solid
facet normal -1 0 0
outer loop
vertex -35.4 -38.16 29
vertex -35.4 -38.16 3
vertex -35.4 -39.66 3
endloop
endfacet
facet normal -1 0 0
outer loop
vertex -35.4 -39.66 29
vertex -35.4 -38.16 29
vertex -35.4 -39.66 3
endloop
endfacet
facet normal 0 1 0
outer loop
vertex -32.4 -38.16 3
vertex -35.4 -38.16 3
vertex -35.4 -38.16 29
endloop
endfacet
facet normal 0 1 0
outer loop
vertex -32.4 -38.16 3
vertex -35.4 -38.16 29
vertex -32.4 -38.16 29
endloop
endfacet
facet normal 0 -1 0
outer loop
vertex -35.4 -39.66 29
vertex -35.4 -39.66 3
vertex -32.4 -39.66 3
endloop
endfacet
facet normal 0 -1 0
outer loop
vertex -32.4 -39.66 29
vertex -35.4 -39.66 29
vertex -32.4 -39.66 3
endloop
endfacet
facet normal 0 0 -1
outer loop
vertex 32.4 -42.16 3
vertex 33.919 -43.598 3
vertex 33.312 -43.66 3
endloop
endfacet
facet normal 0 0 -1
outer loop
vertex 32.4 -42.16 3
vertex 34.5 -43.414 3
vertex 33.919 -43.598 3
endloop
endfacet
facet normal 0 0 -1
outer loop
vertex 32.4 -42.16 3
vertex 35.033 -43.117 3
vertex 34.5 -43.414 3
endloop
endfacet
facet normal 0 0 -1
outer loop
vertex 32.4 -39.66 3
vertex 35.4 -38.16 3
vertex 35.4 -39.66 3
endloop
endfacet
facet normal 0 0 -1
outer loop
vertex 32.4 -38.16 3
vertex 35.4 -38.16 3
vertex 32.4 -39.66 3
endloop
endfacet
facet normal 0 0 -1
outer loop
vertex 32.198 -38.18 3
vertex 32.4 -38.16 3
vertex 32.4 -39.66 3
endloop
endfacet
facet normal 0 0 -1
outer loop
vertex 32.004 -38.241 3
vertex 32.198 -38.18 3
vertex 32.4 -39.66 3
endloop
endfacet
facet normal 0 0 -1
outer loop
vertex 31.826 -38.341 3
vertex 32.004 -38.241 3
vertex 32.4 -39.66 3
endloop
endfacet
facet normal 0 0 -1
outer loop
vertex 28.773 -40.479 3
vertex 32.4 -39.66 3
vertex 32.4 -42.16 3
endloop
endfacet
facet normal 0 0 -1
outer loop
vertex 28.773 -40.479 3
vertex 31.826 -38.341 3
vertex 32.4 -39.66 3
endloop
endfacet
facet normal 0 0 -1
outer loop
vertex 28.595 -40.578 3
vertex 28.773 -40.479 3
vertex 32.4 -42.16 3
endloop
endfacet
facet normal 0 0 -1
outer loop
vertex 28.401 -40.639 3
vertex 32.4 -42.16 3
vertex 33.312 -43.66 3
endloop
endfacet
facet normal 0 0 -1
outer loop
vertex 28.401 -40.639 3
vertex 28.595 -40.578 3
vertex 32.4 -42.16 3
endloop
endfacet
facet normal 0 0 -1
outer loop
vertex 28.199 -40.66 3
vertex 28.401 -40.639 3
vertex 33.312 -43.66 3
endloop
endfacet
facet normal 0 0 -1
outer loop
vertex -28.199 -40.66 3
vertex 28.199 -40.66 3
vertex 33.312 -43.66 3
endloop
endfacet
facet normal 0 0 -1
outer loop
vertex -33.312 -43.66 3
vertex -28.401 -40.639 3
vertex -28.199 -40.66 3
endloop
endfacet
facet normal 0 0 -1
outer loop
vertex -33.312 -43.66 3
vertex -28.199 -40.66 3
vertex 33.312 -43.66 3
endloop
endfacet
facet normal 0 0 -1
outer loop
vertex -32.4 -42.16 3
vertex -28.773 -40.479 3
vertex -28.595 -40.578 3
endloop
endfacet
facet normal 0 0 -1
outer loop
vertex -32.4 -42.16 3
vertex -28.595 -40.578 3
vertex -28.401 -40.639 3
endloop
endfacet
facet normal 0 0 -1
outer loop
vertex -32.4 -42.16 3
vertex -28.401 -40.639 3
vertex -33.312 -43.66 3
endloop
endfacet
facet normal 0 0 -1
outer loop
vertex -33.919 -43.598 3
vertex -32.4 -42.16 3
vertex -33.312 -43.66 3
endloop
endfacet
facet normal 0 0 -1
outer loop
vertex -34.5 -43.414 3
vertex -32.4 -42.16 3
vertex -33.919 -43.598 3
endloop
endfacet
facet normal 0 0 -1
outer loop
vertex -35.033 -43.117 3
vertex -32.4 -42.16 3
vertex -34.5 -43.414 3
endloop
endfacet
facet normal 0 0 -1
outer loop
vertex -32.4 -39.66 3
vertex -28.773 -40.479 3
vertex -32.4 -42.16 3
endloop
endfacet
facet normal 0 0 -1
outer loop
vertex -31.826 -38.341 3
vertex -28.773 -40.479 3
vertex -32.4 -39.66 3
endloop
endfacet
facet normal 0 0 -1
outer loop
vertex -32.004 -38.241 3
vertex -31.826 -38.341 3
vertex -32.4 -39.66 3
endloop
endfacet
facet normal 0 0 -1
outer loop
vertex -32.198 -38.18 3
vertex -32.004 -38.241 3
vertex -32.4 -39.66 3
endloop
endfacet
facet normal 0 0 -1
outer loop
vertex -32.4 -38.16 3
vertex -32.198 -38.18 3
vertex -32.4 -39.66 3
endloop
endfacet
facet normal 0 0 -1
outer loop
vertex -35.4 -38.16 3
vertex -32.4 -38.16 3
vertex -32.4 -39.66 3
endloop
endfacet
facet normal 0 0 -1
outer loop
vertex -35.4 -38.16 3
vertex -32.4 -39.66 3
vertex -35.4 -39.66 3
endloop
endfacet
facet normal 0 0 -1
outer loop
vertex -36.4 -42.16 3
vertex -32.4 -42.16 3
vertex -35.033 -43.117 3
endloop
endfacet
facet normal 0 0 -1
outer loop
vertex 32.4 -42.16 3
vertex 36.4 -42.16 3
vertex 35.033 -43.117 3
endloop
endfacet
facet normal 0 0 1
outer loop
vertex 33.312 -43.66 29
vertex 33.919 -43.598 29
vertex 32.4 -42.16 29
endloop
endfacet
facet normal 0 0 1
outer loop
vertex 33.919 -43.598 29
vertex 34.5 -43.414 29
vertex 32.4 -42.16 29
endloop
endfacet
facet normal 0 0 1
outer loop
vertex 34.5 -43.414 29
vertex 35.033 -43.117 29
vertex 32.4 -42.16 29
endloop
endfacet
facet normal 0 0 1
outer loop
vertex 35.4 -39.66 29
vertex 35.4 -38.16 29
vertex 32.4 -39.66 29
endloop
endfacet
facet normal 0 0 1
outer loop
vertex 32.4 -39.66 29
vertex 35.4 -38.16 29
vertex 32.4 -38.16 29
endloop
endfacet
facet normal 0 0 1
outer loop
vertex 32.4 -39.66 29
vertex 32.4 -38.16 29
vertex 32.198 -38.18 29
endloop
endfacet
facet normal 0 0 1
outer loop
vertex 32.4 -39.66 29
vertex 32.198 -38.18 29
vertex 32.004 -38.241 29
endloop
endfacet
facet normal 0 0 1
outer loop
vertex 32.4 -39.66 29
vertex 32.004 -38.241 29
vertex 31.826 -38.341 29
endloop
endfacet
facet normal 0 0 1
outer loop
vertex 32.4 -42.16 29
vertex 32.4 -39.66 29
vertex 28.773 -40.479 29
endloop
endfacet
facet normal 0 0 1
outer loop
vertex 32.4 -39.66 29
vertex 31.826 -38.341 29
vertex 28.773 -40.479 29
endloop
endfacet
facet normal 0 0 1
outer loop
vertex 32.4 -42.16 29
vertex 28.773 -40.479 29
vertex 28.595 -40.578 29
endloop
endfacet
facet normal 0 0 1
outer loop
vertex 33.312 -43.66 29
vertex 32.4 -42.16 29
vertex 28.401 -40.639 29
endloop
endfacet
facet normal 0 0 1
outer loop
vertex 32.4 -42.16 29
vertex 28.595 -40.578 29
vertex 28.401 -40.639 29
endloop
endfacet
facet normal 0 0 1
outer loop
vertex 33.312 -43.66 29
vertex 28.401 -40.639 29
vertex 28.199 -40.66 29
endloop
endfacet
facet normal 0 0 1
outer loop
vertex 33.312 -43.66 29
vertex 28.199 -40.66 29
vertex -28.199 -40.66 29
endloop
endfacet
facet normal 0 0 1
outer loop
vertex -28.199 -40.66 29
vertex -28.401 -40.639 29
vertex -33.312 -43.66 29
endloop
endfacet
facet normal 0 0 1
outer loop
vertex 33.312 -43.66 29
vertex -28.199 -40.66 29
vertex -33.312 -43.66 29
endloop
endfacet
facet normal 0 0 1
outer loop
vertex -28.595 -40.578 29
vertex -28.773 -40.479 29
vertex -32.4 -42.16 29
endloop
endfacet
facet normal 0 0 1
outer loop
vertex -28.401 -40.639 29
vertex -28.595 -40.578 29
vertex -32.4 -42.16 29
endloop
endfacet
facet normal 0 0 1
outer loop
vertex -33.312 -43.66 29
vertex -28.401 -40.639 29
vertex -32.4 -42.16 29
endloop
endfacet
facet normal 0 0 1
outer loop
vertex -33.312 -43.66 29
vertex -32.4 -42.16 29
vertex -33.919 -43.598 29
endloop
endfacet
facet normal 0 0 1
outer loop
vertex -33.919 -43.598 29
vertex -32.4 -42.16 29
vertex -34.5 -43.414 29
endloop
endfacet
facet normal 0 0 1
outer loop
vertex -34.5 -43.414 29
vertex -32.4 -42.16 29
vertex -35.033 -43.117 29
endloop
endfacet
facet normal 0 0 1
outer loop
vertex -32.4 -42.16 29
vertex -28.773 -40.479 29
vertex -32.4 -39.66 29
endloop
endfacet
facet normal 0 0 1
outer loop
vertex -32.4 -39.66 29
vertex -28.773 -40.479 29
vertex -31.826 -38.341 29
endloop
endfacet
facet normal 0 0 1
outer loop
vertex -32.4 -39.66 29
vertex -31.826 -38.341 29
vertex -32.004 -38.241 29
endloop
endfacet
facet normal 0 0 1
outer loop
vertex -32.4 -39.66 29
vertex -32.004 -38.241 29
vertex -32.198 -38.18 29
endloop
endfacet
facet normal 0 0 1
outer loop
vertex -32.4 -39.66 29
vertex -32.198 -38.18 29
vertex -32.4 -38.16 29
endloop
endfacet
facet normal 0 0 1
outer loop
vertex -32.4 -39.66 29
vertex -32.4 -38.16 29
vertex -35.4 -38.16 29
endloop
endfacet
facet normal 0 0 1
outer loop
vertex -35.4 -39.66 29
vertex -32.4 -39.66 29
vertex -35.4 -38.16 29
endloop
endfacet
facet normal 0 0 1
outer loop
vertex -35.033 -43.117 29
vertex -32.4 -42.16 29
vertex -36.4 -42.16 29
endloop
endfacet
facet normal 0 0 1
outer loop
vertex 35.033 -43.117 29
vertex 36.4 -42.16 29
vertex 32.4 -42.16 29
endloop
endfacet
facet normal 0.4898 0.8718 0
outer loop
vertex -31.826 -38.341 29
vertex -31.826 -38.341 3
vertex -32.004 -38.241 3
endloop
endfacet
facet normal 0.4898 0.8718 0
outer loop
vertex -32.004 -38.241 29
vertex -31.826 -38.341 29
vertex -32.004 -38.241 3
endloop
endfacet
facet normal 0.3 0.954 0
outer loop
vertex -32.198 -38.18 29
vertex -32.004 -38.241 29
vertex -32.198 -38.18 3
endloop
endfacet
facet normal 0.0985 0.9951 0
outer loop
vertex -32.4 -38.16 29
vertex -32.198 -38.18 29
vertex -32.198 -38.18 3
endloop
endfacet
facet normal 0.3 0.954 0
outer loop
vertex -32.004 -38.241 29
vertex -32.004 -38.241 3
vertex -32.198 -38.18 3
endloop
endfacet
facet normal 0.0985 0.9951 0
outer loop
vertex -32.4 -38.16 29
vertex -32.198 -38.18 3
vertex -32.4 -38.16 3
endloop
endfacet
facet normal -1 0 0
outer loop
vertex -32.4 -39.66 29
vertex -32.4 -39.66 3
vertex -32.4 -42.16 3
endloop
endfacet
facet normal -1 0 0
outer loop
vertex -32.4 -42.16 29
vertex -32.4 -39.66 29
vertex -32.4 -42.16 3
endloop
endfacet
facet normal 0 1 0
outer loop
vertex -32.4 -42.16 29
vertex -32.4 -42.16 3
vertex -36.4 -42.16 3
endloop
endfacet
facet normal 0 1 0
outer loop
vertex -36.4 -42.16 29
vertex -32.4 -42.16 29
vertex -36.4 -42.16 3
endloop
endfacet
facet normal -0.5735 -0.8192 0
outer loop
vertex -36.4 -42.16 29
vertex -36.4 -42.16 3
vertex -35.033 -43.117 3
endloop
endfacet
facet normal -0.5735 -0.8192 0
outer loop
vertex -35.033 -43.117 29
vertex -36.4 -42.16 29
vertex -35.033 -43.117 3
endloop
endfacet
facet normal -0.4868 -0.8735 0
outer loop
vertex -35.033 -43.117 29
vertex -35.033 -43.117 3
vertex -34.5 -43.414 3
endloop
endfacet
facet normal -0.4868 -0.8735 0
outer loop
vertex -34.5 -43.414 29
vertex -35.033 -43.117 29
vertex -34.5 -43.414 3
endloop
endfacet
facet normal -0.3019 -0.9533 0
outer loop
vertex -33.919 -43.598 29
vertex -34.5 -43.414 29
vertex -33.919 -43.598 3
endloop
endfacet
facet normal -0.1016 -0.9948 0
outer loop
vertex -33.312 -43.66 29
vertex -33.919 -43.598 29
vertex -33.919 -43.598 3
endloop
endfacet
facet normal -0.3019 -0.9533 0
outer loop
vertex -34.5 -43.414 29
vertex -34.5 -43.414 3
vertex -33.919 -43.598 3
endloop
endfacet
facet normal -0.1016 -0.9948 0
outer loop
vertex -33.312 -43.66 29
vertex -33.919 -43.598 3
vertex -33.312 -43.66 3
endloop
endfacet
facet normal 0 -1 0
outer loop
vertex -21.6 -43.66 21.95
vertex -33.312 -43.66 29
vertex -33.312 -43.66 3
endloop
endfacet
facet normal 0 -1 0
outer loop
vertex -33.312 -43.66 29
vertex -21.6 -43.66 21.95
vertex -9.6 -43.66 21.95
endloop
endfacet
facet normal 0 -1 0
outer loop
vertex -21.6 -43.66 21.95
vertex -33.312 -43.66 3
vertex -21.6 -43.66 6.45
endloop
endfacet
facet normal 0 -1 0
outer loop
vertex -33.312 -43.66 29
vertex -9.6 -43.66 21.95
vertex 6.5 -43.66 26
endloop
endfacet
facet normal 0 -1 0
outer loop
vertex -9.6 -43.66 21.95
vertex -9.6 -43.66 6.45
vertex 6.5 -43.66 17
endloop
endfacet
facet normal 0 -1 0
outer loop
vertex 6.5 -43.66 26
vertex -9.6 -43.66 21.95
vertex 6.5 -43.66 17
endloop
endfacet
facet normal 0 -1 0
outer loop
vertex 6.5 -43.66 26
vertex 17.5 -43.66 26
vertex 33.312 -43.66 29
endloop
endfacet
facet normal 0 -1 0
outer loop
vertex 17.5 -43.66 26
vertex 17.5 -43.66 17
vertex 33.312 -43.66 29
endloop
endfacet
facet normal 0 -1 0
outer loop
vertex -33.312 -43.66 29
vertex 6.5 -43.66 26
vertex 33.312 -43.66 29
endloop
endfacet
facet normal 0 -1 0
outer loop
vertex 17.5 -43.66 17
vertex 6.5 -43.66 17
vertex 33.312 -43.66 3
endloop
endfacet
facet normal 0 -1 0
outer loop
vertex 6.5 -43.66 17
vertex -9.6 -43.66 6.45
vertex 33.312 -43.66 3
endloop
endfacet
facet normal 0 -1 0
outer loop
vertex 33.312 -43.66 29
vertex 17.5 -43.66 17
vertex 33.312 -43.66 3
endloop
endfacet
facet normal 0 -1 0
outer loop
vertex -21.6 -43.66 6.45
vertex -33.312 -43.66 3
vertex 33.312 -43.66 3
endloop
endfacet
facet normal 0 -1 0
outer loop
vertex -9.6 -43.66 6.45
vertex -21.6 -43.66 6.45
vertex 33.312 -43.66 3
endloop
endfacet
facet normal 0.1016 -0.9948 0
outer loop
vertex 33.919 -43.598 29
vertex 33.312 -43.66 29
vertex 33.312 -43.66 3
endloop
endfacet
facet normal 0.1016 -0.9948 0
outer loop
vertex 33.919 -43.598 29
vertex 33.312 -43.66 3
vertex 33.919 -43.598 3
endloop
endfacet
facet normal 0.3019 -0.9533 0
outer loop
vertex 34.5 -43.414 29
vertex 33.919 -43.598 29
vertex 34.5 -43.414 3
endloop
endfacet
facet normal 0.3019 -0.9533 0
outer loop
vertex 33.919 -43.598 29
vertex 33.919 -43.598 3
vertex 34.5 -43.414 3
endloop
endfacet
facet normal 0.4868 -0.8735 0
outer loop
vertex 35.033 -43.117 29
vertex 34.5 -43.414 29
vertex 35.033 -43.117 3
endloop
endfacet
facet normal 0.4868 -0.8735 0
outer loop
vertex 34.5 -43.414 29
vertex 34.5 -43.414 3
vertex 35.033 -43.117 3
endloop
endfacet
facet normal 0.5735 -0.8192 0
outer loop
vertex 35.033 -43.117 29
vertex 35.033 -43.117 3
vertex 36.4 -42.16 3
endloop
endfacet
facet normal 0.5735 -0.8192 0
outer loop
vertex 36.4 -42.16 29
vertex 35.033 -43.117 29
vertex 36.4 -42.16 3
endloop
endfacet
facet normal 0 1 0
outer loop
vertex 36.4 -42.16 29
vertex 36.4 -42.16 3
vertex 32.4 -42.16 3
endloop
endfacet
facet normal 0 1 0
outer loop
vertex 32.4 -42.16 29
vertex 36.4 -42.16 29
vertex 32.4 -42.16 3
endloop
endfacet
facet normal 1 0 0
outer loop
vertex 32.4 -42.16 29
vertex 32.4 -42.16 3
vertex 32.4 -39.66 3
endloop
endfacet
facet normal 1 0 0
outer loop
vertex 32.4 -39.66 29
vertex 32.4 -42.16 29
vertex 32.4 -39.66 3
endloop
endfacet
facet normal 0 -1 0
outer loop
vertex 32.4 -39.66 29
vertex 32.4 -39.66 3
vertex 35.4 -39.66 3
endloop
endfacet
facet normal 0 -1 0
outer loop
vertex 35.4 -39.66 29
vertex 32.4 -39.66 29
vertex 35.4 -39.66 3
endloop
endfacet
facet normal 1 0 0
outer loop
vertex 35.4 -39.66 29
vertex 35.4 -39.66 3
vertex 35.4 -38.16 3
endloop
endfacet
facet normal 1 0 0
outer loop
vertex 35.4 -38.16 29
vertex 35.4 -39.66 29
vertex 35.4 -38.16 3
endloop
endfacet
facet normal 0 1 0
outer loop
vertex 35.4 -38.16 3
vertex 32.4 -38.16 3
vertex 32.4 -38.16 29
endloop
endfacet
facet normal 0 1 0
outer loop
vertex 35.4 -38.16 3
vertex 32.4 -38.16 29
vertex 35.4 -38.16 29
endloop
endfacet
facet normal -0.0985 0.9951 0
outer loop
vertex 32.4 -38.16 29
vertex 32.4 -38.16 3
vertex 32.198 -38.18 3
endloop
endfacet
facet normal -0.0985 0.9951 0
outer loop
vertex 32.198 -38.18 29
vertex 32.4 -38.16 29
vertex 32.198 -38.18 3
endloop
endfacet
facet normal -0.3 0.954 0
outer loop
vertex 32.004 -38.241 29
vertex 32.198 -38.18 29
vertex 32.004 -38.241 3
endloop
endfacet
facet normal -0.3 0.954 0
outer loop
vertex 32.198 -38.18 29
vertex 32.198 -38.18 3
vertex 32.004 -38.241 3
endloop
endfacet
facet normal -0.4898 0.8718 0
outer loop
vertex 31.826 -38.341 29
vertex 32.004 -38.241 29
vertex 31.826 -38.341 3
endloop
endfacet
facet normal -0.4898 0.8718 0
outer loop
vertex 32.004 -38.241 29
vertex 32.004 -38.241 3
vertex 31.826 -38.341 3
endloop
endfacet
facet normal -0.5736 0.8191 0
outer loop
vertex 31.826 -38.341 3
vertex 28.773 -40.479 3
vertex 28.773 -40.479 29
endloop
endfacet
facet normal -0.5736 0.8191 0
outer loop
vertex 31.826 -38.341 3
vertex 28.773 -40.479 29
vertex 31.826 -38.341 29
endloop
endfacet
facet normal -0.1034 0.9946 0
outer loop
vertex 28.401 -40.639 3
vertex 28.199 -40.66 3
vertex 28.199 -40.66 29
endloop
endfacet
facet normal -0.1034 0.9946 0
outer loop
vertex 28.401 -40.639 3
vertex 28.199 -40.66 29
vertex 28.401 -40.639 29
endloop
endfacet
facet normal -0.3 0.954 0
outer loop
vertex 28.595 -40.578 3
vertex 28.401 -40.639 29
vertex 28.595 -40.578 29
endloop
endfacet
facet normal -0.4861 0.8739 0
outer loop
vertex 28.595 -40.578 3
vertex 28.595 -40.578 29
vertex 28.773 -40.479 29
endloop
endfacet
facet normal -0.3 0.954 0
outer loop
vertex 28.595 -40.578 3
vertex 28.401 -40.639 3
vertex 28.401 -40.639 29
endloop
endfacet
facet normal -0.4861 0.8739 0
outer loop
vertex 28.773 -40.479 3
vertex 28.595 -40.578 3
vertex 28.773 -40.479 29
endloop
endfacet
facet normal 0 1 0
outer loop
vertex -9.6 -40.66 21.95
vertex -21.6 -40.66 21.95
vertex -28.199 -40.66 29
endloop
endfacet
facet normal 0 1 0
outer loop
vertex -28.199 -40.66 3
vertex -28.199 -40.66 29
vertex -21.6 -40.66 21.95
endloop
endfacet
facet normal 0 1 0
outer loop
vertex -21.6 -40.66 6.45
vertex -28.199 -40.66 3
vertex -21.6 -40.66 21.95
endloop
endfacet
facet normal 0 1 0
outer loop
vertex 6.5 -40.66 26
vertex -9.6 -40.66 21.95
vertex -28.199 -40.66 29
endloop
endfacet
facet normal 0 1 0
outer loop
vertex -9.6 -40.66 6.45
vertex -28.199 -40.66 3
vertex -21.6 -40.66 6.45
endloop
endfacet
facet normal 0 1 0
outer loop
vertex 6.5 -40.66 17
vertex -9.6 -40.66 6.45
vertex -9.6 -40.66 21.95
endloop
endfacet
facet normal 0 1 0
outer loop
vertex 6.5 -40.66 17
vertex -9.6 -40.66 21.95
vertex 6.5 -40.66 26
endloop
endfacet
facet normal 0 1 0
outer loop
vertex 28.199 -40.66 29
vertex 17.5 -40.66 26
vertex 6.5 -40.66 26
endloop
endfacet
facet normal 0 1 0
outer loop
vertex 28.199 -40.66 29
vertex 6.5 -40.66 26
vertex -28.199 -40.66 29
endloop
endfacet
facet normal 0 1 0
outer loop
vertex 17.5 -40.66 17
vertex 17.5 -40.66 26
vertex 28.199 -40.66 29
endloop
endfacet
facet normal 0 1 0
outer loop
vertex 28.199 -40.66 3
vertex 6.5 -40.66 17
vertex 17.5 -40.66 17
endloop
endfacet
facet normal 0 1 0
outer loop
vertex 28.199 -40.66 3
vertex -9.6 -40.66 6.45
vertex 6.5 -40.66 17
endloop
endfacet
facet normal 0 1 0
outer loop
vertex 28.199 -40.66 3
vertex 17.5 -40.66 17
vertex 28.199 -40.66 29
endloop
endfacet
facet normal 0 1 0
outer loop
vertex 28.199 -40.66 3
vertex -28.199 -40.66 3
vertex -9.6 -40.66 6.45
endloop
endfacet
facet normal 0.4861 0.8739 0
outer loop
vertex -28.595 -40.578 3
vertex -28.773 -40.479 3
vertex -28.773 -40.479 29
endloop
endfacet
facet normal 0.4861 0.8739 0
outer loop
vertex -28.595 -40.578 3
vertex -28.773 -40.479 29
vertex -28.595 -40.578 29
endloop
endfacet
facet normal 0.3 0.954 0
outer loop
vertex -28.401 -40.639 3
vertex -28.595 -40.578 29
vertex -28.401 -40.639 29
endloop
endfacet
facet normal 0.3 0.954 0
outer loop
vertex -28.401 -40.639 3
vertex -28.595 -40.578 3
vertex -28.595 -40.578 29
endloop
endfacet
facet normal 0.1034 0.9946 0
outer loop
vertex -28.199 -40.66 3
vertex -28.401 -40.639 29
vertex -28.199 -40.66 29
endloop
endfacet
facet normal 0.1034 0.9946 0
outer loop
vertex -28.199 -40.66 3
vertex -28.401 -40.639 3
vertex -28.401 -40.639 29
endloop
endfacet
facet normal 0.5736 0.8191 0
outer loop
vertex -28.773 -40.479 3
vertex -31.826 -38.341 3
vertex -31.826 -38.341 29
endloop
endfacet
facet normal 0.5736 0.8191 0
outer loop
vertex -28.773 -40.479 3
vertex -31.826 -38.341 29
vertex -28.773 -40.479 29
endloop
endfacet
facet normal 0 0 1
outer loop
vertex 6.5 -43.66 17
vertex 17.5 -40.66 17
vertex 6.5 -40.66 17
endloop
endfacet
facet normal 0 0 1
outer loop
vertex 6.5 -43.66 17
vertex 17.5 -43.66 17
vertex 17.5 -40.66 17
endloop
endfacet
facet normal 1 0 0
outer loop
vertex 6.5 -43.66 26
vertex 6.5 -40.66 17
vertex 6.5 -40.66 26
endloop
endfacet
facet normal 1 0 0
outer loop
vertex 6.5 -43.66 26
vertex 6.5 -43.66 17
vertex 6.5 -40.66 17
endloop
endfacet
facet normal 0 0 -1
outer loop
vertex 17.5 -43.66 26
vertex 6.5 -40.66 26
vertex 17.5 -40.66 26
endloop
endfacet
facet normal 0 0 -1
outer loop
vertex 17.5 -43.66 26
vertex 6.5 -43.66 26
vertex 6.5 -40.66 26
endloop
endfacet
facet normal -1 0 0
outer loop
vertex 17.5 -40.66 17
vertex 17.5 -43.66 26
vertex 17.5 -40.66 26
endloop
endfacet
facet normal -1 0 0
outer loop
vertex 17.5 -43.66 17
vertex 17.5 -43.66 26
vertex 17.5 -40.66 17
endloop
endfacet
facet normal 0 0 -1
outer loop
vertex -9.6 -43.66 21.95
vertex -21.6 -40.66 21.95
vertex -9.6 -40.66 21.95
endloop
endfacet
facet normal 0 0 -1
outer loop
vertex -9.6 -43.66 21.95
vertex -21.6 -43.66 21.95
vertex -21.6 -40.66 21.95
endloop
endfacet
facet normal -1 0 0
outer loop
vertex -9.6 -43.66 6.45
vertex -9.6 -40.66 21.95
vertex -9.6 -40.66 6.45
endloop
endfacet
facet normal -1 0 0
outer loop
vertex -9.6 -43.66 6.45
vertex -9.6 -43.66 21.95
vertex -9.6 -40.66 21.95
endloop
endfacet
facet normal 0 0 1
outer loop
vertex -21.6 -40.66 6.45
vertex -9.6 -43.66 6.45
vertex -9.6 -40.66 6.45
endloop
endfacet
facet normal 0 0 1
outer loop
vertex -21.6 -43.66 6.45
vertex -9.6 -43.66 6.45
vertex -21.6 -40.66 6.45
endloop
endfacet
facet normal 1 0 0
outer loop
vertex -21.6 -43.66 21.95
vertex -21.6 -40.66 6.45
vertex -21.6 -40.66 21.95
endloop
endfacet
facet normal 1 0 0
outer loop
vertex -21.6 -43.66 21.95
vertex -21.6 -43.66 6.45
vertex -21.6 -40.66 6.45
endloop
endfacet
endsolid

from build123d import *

# Parameters (mm, degrees)
PAD_DEPTH     = 26
SKETCH007_W   = 12
SKETCH007_H   = 15.5
SKETCH007_W_2 = 11
SKETCH007_H_2 = 9
POCKET_DEPTH  = 5


with BuildPart() as part:
    # Sketch008 → Pad (new body)
    with BuildSketch(Plane.XY.offset(3)):
        with BuildLine():
            Line((-35.4, -39.6597), (-32.4, -39.6597))
            Line((-32.4, -39.6597), (-32.4, -42.1597))
            Line((-32.4, -42.1597), (-36.4, -42.1597))
            Line((-36.4, -42.1597), (-35.032611, -43.117156))
            ThreePointArc((-35.032611, -43.117156), (-34.213999, -43.520851), (-33.311882, -43.6597))
            Line((-33.311882, -43.6597), (33.311882, -43.6597))
            ThreePointArc((33.311882, -43.6597), (34.213999, -43.520851), (35.032611, -43.117156))
            Line((35.032611, -43.117156), (36.4, -42.1597))
            Line((36.4, -42.1597), (32.4, -42.1597))
            Line((32.4, -42.1597), (32.4, -39.6597))
            Line((32.4, -39.6597), (35.4, -39.6597))
            Line((35.4, -39.6597), (35.4, -38.1597))
            Line((32.4, -38.1597), (35.4, -38.1597))
            ThreePointArc((32.4, -38.1597), (32.099294, -38.205983), (31.826424, -38.340548))
            Line((28.772609, -40.478852), (31.826424, -38.340548))
            ThreePointArc((28.199032, -40.6597), (28.499738, -40.613417), (28.772609, -40.478852))
            Line((-28.199032, -40.6597), (28.199032, -40.6597))
            ThreePointArc((-28.772609, -40.478852), (-28.499738, -40.613417), (-28.199032, -40.6597))
            Line((-31.826424, -38.340548), (-28.772609, -40.478852))
            ThreePointArc((-31.826424, -38.340548), (-32.099294, -38.205983), (-32.4, -38.1597))
            Line((-35.4, -38.1597), (-32.4, -38.1597))
            Line((-35.4, -38.1597), (-35.4, -39.6597))
        make_face()
    extrude(amount=PAD_DEPTH)

    # Sketch007 → Pocket (cut)
    with BuildSketch(Plane(origin=(0, -43.6597, 3), x_dir=(1, 0, 0), z_dir=(0, -1, 0))):
        with Locations((-15.6, 11.2)):
            Rectangle(SKETCH007_W, SKETCH007_H)
        with Locations((12, 18.5)):
            Rectangle(SKETCH007_W_2, SKETCH007_H_2)
    extrude(amount=-POCKET_DEPTH, mode=Mode.SUBTRACT)


solid = part.part
